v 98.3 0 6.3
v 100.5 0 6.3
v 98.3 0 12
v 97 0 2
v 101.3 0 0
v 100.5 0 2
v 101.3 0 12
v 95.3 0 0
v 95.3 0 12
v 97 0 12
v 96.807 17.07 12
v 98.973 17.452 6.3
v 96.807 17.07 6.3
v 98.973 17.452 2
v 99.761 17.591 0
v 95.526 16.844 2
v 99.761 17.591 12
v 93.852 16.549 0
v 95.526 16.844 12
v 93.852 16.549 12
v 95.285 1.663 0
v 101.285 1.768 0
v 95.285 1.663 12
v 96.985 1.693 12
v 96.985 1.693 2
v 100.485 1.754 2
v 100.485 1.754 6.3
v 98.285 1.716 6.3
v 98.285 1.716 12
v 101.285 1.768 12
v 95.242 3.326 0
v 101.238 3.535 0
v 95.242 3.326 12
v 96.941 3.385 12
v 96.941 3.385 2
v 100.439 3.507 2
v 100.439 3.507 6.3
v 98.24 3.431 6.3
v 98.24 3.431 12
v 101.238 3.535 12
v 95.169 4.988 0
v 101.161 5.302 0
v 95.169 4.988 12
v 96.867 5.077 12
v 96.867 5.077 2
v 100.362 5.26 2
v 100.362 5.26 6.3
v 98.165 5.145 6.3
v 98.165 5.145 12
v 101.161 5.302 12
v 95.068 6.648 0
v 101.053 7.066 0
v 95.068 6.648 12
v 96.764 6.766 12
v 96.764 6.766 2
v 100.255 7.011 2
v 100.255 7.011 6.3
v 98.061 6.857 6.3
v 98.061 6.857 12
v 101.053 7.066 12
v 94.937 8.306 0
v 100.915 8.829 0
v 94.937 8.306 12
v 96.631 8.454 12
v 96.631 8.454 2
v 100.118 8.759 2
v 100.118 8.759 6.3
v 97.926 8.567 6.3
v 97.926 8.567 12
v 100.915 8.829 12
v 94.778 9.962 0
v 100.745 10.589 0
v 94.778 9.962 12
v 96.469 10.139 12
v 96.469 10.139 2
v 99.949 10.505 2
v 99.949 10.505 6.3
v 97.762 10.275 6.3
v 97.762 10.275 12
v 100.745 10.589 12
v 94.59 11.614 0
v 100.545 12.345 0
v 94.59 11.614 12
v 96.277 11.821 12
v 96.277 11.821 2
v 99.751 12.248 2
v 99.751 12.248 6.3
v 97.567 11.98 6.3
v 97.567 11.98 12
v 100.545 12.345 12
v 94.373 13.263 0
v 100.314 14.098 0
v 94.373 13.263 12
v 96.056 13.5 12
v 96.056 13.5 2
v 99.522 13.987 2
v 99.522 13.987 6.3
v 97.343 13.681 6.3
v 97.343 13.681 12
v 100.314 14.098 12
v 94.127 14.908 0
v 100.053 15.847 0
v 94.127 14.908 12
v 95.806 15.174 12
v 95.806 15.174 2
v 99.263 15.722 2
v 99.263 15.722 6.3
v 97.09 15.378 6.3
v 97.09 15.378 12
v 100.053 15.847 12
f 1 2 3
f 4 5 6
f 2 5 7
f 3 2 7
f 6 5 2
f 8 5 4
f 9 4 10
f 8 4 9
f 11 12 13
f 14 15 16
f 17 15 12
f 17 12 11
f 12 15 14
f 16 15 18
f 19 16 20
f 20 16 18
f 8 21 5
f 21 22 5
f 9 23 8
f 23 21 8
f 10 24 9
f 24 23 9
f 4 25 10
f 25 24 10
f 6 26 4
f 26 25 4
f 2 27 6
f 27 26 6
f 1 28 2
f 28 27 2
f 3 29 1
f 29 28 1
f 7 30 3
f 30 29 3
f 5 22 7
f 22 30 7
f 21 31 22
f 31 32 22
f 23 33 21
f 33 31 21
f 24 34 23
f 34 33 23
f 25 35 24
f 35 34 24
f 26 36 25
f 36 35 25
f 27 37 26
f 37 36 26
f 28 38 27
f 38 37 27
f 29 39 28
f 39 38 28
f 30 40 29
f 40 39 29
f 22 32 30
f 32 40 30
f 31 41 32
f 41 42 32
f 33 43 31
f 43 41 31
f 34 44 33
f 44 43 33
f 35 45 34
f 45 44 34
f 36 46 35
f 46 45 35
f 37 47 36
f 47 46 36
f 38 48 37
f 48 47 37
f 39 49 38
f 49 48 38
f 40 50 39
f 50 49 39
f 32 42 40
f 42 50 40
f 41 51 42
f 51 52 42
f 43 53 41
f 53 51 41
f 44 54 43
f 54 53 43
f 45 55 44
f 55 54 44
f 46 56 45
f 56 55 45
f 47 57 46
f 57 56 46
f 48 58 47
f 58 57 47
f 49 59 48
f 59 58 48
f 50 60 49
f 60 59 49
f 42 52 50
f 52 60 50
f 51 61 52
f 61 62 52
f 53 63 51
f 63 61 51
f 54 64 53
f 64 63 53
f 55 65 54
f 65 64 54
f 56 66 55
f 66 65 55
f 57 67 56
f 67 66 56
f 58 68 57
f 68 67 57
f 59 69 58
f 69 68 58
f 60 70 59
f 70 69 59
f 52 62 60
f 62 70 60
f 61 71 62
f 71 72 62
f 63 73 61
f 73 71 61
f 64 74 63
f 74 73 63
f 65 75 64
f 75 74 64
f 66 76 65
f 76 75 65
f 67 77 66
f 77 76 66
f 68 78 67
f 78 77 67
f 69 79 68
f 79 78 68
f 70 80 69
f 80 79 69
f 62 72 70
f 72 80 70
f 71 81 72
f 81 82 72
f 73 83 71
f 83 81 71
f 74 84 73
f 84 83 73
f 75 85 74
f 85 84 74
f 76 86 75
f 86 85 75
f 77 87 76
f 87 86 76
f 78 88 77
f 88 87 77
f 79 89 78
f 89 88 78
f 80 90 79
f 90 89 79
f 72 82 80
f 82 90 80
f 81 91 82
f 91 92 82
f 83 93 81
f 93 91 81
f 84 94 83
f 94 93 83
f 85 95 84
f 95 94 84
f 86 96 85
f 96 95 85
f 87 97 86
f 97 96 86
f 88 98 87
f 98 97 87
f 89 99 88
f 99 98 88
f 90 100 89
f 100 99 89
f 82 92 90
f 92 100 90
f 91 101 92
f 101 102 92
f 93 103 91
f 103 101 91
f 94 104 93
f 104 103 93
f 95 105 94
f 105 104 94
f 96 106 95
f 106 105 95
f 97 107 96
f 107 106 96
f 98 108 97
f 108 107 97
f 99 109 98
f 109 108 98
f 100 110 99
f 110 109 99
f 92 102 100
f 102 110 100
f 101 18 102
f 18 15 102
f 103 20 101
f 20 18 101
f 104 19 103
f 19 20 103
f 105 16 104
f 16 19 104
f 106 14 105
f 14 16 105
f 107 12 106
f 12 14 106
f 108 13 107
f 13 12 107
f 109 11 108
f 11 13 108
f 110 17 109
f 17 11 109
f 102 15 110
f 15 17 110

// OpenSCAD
$fn = 360;

rotate_extrude(angle=10)
	translate([95.3, 0, 0])
		polygon([[0, 0], [6, 0],
				 [6, 12], [3, 12],
				 [3, 6.3], [5.2, 6.3],
				 [5.2, 2], [1.7, 2],
				 [1.7, 12], [0, 12]]);
